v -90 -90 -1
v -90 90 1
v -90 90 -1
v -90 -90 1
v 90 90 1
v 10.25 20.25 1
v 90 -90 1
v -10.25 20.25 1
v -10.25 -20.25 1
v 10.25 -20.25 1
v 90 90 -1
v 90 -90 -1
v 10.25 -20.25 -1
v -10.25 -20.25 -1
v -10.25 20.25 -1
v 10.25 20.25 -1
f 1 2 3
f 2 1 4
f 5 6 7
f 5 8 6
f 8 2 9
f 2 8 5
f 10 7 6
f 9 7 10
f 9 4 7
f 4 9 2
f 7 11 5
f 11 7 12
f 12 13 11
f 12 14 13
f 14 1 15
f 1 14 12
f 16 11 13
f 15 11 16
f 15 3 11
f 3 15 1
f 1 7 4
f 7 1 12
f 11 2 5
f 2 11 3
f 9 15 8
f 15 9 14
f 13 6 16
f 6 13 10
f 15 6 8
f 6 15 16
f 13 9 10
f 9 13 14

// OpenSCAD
//alle Maße in mm
Pd = 2; //plattendicke ist 2mm

//Maße Grundplatte
Lg = 180; //Länge Grundplatte
Bg = Lg;  //Breite Grundplatte

//ServoLoch
Lsl = 20.5;
Bsl = 40.5;

//zeichne Grundplatte
difference(){
    cube(size = [Lg,Bg,Pd], center = true);
    cube(size = [Lsl,Bsl,Pd+2], center = true);
}


    
